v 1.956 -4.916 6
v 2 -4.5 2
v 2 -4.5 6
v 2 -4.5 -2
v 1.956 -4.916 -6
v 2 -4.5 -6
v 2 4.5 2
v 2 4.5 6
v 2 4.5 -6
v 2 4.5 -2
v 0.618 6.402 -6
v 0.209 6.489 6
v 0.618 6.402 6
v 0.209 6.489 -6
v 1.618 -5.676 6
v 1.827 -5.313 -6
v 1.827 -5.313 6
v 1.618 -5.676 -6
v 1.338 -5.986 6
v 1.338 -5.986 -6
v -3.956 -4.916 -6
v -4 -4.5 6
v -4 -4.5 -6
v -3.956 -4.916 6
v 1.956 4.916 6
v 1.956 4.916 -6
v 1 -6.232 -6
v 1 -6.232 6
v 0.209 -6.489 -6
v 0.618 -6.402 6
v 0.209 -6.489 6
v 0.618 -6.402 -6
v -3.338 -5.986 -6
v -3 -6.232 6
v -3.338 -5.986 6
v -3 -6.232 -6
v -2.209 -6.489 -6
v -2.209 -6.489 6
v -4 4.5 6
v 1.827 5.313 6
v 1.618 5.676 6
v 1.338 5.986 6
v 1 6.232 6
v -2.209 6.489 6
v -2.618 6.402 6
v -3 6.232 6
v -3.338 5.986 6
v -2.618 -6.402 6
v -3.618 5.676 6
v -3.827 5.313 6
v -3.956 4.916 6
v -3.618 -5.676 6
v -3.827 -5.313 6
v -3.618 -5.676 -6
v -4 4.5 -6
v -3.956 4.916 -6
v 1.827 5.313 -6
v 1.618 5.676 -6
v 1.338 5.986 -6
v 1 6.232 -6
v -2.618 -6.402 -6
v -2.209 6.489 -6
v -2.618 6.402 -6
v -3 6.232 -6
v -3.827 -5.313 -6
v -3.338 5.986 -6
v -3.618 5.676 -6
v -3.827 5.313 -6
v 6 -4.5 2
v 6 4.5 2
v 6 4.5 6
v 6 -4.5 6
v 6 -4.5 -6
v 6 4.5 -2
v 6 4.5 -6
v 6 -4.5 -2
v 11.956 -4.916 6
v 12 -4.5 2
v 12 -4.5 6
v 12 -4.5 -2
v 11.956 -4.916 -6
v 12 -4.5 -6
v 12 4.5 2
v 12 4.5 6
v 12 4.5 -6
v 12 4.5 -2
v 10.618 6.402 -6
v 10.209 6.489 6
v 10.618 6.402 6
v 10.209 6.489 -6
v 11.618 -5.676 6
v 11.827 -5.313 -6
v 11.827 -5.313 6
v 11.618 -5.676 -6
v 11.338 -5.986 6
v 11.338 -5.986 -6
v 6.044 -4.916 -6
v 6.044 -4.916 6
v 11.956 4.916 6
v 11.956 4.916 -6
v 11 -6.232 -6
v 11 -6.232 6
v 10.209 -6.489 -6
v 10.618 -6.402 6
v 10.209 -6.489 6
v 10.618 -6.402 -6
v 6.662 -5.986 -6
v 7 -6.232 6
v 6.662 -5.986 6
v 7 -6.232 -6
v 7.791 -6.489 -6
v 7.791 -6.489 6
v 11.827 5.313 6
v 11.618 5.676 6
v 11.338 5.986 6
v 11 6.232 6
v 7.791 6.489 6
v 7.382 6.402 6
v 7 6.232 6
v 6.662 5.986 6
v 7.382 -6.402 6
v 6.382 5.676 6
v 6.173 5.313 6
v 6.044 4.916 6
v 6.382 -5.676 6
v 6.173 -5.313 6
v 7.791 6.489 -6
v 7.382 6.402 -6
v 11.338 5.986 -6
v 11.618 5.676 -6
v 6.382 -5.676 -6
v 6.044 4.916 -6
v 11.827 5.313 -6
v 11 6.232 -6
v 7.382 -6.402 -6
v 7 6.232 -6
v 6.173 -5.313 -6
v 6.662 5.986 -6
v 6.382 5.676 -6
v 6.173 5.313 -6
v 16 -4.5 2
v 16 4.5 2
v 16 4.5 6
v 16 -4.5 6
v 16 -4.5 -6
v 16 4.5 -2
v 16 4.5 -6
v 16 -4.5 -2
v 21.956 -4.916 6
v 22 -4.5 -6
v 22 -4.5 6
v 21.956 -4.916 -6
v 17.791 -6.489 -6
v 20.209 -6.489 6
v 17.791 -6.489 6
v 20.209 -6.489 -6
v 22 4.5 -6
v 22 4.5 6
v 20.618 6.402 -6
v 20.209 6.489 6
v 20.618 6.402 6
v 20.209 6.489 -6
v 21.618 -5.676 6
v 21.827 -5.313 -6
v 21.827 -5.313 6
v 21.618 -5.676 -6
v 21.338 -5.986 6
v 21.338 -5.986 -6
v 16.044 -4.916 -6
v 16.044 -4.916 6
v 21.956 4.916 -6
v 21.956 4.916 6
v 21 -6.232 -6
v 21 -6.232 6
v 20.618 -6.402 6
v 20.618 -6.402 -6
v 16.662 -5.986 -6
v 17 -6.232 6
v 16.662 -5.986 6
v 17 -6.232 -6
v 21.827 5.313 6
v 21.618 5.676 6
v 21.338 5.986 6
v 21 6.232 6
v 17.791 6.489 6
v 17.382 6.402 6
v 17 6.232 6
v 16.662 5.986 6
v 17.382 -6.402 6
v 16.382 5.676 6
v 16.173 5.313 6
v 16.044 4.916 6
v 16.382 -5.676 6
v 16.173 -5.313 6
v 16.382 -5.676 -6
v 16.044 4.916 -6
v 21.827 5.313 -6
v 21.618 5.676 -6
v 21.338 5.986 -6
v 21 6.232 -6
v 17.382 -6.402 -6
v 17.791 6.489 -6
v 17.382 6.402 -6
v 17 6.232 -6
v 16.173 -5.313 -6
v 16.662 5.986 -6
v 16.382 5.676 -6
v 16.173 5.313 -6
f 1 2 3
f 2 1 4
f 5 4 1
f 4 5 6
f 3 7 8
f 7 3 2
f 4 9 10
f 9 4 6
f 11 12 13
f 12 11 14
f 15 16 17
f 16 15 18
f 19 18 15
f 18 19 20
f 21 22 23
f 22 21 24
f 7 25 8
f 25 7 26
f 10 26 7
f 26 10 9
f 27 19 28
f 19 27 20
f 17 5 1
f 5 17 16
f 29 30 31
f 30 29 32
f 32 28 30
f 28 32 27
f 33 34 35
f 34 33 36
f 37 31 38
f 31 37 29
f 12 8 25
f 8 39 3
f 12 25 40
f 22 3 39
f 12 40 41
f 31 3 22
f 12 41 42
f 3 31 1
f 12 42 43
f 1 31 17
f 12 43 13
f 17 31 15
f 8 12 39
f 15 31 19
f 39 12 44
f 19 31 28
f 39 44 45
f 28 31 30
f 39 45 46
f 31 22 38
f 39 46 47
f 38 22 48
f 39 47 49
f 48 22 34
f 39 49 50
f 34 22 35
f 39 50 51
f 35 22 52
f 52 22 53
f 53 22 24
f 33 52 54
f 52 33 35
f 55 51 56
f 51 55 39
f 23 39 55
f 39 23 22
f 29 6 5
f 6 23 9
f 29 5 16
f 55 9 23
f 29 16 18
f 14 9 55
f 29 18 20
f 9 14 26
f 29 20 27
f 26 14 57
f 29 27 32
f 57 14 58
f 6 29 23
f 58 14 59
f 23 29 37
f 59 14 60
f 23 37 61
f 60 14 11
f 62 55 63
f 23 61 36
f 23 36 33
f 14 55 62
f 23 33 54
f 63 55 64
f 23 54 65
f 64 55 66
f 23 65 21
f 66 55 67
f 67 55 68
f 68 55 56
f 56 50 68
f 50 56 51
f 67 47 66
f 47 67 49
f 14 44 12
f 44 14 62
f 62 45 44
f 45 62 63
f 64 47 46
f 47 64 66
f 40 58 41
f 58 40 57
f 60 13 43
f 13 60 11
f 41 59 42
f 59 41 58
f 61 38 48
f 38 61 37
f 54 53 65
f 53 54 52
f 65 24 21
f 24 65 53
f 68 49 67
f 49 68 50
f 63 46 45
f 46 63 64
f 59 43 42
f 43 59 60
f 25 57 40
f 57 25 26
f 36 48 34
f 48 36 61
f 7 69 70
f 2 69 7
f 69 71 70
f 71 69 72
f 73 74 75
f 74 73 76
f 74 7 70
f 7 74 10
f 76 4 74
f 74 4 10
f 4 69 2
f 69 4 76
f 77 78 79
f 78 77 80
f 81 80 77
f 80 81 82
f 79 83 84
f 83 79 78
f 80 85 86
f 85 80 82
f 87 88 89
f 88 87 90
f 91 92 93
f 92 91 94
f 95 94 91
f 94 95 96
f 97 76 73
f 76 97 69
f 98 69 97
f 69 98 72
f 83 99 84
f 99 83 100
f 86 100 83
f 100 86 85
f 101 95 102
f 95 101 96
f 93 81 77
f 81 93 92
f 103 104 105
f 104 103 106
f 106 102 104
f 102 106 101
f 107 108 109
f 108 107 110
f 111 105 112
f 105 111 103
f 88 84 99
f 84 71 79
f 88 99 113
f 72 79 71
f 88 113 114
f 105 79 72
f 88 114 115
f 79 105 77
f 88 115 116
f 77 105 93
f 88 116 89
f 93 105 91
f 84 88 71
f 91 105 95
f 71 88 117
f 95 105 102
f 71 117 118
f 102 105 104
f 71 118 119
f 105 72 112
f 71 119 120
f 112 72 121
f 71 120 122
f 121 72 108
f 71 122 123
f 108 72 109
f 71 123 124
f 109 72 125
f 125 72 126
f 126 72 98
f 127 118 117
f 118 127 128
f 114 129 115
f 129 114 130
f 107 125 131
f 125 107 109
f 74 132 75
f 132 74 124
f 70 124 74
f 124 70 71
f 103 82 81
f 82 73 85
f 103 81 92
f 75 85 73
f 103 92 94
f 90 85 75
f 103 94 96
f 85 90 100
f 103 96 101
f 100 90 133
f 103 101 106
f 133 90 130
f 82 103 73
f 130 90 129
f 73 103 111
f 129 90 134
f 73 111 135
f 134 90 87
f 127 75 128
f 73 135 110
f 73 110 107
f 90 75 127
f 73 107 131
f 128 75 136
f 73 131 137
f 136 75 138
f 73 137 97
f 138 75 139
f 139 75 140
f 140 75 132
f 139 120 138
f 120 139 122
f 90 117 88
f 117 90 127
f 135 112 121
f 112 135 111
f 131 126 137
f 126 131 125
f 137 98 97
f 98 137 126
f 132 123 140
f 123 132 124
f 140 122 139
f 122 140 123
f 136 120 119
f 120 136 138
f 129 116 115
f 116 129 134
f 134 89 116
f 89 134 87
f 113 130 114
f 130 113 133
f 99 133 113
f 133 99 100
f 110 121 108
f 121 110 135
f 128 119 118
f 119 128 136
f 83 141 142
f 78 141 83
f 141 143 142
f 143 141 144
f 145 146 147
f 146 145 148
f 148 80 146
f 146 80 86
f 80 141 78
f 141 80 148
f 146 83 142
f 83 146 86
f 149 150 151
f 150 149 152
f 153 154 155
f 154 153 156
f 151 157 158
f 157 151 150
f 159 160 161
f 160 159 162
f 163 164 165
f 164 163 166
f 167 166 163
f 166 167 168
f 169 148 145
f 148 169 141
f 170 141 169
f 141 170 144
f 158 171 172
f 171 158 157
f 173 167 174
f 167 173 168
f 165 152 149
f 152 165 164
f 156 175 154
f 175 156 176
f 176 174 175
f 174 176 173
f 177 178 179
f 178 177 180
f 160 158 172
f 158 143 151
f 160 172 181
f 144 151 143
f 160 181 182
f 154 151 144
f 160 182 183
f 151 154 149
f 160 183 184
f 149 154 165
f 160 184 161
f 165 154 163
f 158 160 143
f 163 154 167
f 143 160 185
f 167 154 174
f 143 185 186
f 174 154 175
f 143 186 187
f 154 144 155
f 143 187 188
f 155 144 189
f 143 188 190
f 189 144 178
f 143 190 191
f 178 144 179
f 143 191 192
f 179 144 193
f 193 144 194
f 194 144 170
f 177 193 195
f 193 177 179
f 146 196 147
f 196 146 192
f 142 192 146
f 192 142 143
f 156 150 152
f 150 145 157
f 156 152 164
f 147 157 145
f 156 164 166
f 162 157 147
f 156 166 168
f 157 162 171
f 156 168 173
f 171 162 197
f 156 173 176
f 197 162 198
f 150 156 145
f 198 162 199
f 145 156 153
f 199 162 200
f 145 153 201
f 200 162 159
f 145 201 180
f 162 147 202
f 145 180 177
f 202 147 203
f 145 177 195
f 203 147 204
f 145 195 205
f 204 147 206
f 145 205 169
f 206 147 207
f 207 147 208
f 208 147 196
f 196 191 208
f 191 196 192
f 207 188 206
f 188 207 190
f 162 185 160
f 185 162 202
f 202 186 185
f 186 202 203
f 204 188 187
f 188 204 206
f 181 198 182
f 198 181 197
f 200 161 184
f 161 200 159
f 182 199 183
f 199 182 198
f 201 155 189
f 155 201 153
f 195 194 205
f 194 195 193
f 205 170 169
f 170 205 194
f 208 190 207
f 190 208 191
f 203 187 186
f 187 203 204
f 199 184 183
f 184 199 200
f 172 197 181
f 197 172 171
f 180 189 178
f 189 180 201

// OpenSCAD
$fn=30;
height=12;
radius=2;
union(){
    hull(){
        translate([0,-4.5,0])cylinder(r=radius,h=height, center=true);
        translate([-2,4.5,0])cylinder(r=radius,h=height, center=true);
        translate([0,4.5,0])cylinder(r=radius,h=height, center=true);
        translate([-2,-4.5,0])cylinder(r=radius,h=height, center=true);
  }
  translate([4,0,0])cube([radius/0.5,radius+7,radius+2],center=true);
   translate([10,0,0]) hull(){
        translate([0,-4.5,0])cylinder(r=radius,h=height, center=true);
        translate([-2,4.5,0])cylinder(r=radius,h=height, center=true);
        translate([0,4.5,0])cylinder(r=radius,h=height, center=true);
        translate([-2,-4.5,0])cylinder(r=radius,h=height, center=true);
  }
  translate([14,0,0])cube([radius/0.5,radius+7,radius+2],center=true);
   translate([20,0,0]) hull(){
        translate([0,-4.5,0])cylinder(r=radius,h=height, center=true);
        translate([-2,4.5,0])cylinder(r=radius,h=height, center=true);
        translate([0,4.5,0])cylinder(r=radius,h=height, center=true);
        translate([-2,-4.5,0])cylinder(r=radius,h=height, center=true); 
   }
}
